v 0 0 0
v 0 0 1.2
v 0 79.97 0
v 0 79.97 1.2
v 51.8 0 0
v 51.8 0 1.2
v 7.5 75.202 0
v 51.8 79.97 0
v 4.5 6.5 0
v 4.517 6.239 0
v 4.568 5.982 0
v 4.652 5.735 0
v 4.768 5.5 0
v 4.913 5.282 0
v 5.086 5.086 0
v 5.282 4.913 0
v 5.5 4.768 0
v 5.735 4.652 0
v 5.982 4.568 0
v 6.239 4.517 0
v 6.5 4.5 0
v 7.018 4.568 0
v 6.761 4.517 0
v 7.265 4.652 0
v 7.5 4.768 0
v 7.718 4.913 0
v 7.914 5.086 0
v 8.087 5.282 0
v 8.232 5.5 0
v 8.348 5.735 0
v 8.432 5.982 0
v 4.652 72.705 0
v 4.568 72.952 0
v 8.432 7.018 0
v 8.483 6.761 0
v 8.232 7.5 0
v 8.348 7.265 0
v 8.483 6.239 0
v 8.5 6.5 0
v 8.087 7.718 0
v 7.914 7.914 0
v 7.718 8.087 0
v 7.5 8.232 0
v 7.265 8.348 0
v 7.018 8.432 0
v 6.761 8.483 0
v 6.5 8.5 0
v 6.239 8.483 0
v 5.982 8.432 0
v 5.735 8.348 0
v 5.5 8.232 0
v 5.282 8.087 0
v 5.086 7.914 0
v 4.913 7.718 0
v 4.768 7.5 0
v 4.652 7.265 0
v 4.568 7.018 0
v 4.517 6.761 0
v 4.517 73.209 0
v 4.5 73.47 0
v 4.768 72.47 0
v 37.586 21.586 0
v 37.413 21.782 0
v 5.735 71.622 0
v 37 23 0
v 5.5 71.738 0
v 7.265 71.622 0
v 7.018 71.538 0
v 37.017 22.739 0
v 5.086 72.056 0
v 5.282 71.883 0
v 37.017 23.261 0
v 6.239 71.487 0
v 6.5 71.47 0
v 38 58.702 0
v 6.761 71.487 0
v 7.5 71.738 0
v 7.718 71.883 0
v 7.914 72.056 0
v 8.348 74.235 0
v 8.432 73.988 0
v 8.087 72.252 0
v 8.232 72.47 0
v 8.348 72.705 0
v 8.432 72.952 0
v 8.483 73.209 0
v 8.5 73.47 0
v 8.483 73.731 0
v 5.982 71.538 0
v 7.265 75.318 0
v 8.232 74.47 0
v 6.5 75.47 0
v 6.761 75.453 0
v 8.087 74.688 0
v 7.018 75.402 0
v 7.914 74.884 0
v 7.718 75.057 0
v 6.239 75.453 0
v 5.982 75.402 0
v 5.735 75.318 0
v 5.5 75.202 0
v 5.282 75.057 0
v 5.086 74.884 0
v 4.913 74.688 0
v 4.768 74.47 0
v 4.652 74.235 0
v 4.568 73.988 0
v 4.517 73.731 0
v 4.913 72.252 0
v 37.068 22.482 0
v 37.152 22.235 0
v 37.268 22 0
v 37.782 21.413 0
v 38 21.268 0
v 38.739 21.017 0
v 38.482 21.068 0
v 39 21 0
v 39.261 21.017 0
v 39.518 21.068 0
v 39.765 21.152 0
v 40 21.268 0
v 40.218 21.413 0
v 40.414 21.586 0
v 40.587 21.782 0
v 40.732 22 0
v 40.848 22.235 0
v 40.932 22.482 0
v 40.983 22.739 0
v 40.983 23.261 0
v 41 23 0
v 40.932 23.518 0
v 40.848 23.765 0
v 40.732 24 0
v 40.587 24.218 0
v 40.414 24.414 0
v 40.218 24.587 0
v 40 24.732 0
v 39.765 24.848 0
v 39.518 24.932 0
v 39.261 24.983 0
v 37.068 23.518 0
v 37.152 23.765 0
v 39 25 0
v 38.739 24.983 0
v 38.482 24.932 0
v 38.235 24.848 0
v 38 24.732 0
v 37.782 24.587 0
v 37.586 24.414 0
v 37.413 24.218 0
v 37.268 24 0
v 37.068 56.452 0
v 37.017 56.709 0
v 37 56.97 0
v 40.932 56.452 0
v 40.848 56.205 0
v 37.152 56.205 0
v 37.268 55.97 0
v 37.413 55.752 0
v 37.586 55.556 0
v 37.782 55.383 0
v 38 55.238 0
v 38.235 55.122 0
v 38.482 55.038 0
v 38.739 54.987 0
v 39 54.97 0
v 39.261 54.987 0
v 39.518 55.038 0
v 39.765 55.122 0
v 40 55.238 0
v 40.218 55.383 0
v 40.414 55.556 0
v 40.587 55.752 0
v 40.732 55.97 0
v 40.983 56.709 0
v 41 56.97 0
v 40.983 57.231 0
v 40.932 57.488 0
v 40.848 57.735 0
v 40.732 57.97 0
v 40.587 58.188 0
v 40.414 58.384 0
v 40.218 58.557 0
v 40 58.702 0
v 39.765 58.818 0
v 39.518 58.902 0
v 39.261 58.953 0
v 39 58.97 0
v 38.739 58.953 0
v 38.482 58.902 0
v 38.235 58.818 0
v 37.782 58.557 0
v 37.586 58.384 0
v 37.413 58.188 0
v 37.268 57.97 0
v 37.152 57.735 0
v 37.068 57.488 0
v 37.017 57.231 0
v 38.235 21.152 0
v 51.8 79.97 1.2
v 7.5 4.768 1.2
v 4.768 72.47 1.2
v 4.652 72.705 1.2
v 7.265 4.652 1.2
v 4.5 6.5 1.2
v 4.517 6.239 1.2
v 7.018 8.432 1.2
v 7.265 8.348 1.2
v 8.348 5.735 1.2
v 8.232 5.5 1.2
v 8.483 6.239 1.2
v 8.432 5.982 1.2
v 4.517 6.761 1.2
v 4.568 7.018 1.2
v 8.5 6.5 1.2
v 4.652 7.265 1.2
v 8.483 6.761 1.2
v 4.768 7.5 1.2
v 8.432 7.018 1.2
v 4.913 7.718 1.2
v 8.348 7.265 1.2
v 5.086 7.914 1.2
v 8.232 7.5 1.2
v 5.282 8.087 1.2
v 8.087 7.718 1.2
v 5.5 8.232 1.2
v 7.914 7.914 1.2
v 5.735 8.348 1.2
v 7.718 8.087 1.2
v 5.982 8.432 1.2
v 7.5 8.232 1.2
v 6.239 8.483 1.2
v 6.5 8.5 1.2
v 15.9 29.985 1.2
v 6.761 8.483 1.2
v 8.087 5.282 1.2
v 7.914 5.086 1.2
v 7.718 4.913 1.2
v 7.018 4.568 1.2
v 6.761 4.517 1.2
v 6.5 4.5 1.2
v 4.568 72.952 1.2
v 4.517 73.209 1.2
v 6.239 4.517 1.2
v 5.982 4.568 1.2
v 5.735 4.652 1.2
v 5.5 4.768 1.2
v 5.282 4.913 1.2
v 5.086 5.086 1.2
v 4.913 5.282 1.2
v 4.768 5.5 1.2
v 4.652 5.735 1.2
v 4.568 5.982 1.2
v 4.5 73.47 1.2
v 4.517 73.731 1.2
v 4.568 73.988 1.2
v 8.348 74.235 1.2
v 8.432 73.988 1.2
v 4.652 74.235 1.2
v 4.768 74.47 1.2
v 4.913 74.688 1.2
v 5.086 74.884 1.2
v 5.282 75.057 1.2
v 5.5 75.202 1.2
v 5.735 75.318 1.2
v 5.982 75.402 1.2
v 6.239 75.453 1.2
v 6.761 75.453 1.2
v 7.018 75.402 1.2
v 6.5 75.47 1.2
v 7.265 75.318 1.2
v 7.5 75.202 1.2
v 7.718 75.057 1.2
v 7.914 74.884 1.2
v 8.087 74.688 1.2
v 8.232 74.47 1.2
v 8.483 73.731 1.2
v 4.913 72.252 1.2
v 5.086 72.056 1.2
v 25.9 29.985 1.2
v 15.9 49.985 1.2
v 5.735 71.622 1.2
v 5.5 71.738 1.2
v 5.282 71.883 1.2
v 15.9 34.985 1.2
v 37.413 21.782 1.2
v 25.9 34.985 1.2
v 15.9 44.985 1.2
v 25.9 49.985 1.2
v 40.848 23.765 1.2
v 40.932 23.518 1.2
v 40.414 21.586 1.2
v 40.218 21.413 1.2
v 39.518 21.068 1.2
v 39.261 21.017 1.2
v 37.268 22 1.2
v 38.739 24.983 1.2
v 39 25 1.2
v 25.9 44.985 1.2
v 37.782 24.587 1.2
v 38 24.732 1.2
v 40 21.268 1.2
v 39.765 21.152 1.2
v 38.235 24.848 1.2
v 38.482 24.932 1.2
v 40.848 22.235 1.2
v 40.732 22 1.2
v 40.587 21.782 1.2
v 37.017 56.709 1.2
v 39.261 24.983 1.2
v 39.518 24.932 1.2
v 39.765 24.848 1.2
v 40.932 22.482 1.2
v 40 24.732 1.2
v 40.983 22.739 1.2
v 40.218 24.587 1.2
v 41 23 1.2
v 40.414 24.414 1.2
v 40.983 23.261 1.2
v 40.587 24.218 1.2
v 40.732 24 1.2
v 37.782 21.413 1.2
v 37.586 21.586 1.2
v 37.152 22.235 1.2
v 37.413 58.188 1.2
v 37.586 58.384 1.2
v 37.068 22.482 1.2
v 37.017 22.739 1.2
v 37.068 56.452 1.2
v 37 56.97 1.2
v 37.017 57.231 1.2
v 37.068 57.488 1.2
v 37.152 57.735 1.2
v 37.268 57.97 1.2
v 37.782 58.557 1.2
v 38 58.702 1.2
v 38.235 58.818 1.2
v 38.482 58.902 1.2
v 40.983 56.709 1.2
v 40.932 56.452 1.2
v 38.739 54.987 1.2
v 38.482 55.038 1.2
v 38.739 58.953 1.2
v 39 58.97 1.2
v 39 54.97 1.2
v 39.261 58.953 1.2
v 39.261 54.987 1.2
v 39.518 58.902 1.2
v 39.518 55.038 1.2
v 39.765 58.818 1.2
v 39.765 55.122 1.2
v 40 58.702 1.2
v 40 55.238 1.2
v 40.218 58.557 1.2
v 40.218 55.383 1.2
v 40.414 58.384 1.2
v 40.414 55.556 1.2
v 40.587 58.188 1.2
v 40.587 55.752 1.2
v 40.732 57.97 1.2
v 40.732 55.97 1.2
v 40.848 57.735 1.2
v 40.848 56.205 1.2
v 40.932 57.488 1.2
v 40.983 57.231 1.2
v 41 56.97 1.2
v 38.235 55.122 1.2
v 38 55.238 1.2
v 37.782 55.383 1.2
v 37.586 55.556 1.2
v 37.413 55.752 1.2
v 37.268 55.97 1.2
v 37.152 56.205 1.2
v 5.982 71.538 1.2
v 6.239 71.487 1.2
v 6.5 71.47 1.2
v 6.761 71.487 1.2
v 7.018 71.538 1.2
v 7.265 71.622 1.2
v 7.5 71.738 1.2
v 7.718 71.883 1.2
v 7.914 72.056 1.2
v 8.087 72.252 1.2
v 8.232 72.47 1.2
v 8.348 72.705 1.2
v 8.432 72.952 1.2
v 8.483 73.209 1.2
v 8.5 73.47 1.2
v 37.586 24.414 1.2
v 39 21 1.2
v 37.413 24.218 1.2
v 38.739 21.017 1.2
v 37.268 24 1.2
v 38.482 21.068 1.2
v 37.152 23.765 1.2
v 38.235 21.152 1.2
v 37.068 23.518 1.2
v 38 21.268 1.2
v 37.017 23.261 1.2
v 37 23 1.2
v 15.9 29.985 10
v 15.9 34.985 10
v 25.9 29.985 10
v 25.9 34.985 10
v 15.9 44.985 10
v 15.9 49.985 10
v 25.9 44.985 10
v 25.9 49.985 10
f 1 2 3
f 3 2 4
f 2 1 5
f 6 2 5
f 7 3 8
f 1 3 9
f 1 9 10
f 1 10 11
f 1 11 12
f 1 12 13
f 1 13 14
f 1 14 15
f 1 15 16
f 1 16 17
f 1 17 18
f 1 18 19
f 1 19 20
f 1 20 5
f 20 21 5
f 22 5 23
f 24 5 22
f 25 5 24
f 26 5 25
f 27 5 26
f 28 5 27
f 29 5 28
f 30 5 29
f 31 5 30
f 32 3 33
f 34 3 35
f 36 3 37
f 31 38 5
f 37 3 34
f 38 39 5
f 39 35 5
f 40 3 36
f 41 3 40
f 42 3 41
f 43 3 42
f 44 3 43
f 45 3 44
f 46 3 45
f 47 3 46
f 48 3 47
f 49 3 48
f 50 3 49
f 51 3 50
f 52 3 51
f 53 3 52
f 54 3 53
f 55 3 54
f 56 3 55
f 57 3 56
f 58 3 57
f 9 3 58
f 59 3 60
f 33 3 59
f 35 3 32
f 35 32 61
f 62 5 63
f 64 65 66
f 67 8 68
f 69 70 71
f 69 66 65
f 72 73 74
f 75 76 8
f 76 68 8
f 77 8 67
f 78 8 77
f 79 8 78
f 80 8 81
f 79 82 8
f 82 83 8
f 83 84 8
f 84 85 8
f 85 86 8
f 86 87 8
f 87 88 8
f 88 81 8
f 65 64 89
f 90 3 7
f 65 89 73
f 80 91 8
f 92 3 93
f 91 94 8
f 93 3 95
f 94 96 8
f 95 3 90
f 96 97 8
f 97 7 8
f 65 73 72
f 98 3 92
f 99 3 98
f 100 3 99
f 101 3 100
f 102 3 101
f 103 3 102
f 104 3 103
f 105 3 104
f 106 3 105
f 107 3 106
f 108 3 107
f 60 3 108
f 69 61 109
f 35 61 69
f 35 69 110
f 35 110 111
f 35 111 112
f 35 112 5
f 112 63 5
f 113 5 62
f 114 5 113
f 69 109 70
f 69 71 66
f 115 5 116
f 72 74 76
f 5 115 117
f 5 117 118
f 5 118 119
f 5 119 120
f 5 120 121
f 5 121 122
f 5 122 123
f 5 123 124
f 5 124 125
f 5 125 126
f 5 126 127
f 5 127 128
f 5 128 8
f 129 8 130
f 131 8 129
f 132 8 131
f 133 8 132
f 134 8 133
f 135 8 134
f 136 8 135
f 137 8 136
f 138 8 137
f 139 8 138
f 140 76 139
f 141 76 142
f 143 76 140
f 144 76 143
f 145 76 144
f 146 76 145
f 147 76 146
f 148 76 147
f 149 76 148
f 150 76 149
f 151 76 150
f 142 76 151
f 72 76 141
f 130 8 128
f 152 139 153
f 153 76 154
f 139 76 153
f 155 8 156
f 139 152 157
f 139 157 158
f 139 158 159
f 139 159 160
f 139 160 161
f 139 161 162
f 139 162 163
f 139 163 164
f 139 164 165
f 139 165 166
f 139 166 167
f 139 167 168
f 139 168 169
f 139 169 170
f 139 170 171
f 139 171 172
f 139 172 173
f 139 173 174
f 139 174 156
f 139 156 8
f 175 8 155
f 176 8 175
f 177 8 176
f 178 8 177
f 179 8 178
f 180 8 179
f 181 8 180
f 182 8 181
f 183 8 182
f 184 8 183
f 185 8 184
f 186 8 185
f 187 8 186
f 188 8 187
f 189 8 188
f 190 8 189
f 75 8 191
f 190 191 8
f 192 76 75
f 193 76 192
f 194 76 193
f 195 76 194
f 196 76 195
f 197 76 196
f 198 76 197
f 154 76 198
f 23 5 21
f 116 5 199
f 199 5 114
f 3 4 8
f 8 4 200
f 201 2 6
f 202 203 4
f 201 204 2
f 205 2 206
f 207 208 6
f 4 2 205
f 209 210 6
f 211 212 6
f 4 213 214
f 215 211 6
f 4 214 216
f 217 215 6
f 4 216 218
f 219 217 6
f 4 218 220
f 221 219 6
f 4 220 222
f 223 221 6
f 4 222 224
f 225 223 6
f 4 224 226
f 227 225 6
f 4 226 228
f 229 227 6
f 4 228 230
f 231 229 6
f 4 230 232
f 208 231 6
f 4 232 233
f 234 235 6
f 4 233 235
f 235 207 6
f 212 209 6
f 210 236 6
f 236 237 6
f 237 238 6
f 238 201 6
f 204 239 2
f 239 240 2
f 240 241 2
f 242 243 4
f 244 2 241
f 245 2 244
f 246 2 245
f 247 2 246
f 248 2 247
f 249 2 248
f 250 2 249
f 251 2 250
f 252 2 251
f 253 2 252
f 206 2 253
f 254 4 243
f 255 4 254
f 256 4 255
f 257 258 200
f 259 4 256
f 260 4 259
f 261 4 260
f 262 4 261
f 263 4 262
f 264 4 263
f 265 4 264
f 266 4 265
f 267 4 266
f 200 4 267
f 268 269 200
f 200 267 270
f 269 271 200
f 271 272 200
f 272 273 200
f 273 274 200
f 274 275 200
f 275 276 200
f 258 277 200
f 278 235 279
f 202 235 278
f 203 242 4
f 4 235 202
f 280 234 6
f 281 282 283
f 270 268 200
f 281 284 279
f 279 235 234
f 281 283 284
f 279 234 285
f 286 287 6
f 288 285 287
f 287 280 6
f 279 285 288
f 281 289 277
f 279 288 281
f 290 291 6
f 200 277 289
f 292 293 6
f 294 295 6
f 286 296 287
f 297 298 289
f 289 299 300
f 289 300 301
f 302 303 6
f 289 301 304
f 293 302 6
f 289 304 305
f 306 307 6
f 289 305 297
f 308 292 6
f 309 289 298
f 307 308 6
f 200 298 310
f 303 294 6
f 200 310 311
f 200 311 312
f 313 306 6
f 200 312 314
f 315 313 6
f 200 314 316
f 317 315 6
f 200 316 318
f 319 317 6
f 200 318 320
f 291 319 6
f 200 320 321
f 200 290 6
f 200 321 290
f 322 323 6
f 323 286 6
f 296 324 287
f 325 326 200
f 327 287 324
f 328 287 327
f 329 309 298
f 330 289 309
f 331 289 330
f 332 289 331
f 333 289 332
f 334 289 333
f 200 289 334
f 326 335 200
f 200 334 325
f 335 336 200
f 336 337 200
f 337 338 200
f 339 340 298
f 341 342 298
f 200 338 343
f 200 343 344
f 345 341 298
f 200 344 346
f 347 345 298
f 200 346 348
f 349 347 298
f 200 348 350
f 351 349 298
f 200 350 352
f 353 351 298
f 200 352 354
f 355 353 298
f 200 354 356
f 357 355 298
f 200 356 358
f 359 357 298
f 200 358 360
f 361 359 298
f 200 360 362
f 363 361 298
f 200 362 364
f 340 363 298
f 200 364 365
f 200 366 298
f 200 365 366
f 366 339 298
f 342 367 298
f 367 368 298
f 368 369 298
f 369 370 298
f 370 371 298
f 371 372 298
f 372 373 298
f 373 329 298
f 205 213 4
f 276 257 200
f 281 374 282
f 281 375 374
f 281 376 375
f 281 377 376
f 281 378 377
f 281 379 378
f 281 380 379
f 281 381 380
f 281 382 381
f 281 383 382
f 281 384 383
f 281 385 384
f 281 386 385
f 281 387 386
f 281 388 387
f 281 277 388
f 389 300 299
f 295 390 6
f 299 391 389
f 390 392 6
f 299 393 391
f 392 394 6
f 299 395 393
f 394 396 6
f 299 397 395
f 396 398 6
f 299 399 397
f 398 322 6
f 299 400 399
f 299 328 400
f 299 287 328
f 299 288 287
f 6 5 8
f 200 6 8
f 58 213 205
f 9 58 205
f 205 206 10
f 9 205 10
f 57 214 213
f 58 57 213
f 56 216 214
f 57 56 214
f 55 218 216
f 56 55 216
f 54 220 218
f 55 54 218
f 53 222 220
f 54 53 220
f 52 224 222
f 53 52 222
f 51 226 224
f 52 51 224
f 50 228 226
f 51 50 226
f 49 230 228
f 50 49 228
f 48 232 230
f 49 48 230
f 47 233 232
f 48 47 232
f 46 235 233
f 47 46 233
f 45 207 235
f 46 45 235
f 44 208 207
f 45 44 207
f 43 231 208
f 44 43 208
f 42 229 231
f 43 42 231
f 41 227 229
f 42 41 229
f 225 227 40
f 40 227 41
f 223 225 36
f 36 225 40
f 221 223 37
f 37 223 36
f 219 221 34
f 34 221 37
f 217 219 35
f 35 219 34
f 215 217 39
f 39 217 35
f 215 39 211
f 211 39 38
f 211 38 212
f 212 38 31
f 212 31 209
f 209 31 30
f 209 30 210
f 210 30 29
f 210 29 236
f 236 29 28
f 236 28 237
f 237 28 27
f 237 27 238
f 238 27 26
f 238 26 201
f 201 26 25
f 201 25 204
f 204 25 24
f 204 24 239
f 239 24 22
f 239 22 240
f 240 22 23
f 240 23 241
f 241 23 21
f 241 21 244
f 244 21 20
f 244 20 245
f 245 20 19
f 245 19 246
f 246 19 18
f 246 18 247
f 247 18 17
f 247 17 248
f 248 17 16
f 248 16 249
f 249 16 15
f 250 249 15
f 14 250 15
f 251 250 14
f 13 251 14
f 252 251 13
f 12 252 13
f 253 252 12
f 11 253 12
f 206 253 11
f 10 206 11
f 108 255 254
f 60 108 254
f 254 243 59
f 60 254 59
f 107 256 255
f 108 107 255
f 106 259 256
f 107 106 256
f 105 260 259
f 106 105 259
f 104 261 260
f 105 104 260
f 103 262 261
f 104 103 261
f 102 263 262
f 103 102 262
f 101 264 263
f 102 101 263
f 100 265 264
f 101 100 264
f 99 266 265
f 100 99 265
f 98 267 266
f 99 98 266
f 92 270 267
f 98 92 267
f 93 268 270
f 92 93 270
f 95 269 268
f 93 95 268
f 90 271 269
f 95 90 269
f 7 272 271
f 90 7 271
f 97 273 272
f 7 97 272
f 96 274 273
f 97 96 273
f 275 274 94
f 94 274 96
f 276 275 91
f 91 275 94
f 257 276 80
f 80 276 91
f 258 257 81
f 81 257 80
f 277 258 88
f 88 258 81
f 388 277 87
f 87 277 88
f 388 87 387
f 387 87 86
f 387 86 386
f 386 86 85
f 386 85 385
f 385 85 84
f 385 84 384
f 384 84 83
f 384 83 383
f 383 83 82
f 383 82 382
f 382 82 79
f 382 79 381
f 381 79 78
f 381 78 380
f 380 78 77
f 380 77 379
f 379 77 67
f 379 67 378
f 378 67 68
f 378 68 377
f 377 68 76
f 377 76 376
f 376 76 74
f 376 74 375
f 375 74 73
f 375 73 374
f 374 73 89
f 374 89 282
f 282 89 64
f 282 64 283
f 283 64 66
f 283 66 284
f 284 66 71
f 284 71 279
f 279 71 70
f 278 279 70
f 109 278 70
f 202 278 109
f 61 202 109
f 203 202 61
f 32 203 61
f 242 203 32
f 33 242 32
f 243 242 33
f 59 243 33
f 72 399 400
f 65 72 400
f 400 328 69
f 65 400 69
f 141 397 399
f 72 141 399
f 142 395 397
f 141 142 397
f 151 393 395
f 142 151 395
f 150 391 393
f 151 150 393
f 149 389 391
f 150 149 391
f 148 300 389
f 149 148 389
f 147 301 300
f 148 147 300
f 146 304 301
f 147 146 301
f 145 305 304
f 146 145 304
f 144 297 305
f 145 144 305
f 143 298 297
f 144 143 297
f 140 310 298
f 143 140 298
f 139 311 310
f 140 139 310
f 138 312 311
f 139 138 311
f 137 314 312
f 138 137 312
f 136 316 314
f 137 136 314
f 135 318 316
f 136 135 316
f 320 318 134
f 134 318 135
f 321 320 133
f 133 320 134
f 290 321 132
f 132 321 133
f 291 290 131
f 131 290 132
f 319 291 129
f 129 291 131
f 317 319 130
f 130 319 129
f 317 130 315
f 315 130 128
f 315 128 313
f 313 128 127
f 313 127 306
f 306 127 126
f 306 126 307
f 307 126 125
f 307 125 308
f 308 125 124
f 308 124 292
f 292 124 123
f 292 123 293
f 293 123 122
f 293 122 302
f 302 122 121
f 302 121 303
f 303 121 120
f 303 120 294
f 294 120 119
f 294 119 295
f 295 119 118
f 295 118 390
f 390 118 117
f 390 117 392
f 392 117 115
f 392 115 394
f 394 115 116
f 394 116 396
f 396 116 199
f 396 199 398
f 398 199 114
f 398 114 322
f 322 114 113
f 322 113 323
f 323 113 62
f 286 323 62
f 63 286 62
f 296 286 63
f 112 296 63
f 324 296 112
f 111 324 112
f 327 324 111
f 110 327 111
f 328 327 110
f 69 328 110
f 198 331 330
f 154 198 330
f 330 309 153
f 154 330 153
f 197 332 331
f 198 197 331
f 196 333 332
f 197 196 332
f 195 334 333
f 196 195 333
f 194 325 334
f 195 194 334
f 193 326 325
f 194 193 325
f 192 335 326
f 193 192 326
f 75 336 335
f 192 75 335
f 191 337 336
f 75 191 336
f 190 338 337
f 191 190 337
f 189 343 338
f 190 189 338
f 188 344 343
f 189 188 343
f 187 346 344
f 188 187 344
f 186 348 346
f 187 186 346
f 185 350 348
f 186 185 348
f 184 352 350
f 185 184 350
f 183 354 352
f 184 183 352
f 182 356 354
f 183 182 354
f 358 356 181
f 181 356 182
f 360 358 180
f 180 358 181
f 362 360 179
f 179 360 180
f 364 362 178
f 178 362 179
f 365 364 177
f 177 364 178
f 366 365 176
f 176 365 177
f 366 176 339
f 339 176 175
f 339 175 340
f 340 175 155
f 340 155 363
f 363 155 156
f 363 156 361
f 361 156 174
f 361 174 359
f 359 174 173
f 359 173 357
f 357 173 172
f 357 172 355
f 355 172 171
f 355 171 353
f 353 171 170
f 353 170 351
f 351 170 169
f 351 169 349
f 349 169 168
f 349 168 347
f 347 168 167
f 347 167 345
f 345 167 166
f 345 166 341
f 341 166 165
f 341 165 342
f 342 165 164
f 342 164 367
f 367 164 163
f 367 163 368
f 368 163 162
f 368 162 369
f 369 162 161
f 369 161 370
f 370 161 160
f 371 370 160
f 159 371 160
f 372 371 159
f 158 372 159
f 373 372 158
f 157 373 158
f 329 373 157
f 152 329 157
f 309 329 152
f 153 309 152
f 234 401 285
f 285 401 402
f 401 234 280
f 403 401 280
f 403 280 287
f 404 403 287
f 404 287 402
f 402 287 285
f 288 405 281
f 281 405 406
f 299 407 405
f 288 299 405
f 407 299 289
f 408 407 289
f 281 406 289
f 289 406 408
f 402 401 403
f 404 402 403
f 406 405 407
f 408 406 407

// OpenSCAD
ibar = 20.0;

fudge = 0.4;
thin = 0.01;

wall_th = 0.8*1.5;

box_w = 55.0-1.6*2;
box_h = 83.17-1.6*2;

ha = 6.5;
hb = 23;
hc = 39;

$fn=48;

module hole(x, y) {
  translate([x, y, -thin])
    cylinder(r=2, h=10);
}

module panel_back() {
  difference() {
    union() {
      cube([box_w, box_h, wall_th]);
      translate([box_w/2-10/2-5, box_h/2-ibar/2, 0])
        difference() {
          cube([10, ibar, 10]);
          translate([0, ibar/4, 0])
            cube([10, ibar/2, 10]);
        }
    }

    hole(ha, ha);
    hole(ha, box_h-ha);
    hole(hc, hb);
    hole(hc, box_h-hb);
  }
}

panel_back();
